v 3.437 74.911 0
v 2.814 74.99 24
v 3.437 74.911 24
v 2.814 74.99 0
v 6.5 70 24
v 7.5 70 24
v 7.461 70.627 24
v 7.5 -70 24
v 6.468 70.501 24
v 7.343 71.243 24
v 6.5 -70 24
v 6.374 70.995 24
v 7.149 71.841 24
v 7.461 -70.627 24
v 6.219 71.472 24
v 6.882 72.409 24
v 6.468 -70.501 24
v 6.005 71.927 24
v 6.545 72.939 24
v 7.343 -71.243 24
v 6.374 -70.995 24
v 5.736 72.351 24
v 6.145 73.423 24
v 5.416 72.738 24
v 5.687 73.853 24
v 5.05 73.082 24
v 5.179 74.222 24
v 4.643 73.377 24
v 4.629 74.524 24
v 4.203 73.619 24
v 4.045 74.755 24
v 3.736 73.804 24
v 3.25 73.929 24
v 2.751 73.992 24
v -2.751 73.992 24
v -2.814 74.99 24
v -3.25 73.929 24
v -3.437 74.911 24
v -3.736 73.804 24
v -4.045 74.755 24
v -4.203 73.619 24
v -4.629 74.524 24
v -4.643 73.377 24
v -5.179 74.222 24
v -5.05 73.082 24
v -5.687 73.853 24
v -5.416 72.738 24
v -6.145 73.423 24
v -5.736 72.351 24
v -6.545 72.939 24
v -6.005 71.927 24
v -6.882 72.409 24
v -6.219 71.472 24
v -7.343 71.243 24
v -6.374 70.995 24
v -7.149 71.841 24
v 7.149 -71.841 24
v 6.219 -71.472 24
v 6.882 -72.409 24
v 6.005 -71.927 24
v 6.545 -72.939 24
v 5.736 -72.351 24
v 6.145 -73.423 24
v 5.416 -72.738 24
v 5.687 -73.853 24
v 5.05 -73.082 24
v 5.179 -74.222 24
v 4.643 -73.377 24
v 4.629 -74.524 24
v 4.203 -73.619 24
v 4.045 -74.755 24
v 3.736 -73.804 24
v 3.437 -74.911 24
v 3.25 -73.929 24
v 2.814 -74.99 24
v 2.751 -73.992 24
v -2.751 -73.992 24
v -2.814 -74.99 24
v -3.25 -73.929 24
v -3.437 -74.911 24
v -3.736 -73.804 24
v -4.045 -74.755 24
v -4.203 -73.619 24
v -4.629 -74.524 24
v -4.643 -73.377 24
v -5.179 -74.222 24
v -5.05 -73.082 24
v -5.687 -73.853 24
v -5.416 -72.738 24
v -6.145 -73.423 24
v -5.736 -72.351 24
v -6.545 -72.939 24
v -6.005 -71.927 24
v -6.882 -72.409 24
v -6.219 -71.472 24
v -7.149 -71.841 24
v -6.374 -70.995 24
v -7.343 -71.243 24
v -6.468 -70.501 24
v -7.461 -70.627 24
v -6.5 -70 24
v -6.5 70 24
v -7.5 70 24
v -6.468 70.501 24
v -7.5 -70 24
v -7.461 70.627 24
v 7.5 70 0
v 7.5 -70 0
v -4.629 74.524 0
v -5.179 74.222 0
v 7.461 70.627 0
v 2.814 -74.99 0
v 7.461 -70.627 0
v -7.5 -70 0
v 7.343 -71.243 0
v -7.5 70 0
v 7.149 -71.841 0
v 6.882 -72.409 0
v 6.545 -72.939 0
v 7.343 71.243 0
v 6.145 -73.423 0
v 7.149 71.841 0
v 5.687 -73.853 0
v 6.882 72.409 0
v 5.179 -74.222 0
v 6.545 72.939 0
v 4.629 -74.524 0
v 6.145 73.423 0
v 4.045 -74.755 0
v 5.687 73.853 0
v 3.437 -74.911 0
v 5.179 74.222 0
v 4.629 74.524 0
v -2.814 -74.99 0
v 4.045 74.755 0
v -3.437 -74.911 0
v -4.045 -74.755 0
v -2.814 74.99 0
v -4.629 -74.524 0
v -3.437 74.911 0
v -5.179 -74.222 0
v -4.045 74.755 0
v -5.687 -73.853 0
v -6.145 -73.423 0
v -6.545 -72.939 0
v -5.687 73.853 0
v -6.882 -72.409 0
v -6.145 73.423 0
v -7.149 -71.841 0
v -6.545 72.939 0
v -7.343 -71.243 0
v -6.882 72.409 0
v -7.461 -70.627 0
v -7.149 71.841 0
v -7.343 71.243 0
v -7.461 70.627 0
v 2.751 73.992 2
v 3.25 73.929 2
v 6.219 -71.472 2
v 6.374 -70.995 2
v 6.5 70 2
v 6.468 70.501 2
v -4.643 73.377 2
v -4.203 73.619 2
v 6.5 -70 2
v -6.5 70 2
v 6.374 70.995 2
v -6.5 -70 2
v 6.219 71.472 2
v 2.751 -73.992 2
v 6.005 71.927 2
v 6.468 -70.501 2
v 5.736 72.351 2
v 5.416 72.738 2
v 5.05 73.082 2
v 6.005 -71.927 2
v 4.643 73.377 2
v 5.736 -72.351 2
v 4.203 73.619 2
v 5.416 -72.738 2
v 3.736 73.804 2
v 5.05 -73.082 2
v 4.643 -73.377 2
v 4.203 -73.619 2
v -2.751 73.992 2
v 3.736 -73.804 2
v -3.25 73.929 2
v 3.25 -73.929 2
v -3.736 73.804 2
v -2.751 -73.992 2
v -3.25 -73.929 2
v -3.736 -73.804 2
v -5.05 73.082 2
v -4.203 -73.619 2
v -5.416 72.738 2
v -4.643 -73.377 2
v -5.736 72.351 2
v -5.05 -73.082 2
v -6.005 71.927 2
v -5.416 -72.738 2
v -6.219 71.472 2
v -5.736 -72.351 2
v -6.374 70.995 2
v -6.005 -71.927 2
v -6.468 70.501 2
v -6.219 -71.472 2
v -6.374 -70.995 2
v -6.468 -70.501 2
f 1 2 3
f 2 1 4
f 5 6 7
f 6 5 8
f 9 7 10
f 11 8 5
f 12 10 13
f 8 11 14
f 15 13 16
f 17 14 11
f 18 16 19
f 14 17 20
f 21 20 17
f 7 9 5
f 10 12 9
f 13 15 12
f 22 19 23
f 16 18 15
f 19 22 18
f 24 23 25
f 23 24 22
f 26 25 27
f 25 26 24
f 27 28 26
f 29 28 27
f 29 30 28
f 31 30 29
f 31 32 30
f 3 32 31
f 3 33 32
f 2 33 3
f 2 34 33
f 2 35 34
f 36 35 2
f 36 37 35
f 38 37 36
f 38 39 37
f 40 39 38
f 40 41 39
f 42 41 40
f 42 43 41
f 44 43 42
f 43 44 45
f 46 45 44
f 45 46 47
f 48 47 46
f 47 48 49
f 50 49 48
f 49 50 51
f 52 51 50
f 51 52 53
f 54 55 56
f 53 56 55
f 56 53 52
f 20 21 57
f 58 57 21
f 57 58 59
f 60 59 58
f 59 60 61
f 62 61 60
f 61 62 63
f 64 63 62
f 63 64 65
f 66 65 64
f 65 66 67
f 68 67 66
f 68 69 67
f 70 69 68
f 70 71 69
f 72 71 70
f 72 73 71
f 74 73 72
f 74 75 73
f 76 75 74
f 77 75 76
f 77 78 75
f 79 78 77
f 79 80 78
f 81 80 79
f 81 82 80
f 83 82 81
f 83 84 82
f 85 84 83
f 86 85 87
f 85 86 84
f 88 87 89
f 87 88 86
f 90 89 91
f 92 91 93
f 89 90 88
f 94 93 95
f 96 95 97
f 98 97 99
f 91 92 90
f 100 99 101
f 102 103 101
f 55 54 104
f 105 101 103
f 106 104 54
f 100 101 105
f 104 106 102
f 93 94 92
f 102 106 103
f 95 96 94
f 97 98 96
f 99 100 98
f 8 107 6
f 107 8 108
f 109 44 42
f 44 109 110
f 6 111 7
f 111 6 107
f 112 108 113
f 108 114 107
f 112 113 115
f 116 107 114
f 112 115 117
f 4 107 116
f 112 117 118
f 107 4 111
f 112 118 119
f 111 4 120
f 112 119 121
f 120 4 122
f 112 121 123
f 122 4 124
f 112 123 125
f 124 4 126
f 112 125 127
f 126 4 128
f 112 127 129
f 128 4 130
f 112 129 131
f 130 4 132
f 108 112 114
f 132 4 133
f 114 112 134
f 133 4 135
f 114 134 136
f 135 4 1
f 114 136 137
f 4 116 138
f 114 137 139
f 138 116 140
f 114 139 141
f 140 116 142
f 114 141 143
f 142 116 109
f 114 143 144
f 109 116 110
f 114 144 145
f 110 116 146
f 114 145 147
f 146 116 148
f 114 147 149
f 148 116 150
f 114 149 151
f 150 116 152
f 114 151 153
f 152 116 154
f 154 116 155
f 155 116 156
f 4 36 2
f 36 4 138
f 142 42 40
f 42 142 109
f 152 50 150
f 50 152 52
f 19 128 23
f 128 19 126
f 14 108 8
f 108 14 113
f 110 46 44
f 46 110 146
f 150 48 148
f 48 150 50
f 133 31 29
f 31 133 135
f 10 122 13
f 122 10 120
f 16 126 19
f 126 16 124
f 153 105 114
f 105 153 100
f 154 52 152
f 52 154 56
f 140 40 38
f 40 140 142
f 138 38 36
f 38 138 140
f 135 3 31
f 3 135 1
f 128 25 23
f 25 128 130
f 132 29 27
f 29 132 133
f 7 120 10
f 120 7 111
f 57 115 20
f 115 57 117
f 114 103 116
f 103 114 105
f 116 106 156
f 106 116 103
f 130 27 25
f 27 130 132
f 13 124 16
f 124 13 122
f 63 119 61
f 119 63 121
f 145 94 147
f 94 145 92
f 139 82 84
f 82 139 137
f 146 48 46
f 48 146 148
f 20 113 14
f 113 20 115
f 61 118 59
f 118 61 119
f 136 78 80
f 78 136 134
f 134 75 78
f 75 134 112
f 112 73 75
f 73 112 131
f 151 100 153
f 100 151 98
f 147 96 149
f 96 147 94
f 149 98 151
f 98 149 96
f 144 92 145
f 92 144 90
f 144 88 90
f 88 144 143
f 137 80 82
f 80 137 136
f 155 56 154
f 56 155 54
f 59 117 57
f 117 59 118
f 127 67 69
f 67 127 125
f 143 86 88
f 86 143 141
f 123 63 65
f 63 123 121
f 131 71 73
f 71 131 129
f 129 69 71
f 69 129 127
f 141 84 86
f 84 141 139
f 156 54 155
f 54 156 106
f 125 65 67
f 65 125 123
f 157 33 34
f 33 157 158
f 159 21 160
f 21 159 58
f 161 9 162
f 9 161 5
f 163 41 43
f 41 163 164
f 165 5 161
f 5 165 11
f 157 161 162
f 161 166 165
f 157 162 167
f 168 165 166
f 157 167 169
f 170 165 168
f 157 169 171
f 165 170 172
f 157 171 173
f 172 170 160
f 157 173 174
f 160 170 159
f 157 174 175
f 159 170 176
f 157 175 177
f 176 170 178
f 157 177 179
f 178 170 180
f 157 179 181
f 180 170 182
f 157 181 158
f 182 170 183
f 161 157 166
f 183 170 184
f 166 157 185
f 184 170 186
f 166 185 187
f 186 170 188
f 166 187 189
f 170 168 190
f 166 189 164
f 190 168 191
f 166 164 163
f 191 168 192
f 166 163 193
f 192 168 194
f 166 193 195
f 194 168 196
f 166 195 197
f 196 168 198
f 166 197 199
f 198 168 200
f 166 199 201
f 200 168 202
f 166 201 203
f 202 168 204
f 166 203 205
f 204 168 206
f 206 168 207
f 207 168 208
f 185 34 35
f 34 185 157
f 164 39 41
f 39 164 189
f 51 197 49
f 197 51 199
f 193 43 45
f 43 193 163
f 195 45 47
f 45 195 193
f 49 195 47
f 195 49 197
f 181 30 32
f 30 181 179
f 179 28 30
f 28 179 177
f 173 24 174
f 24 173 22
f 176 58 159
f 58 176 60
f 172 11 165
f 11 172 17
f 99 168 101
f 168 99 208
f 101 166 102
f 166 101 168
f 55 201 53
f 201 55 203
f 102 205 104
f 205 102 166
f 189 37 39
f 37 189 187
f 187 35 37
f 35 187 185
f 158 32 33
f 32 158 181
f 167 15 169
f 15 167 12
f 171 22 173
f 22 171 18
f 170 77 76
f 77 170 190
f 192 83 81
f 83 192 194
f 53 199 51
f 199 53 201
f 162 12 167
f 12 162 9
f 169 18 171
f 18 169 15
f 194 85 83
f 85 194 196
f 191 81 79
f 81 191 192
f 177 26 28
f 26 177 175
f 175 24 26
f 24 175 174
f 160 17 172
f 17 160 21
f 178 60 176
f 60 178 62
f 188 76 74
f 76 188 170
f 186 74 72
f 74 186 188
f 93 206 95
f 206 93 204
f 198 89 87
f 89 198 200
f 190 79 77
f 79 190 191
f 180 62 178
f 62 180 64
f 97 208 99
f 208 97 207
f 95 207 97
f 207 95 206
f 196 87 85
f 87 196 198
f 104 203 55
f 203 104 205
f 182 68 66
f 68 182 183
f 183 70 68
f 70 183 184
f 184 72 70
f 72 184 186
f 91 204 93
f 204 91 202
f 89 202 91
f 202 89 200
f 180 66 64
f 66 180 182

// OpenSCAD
$fn = 50;


difference() {
	union() {
		hull() {
			translate(v = [-2.5000000000, 70.0000000000, 0]) {
				cylinder(h = 24, r = 5);
			}
			translate(v = [2.5000000000, 70.0000000000, 0]) {
				cylinder(h = 24, r = 5);
			}
			translate(v = [-2.5000000000, -70.0000000000, 0]) {
				cylinder(h = 24, r = 5);
			}
			translate(v = [2.5000000000, -70.0000000000, 0]) {
				cylinder(h = 24, r = 5);
			}
		}
	}
	union() {
		translate(v = [0, 0, 2]) {
			hull() {
				translate(v = [-2.5000000000, 70.0000000000, 0]) {
					cylinder(h = 22, r = 4);
				}
				translate(v = [2.5000000000, 70.0000000000, 0]) {
					cylinder(h = 22, r = 4);
				}
				translate(v = [-2.5000000000, -70.0000000000, 0]) {
					cylinder(h = 22, r = 4);
				}
				translate(v = [2.5000000000, -70.0000000000, 0]) {
					cylinder(h = 22, r = 4);
				}
			}
		}
	}
}
